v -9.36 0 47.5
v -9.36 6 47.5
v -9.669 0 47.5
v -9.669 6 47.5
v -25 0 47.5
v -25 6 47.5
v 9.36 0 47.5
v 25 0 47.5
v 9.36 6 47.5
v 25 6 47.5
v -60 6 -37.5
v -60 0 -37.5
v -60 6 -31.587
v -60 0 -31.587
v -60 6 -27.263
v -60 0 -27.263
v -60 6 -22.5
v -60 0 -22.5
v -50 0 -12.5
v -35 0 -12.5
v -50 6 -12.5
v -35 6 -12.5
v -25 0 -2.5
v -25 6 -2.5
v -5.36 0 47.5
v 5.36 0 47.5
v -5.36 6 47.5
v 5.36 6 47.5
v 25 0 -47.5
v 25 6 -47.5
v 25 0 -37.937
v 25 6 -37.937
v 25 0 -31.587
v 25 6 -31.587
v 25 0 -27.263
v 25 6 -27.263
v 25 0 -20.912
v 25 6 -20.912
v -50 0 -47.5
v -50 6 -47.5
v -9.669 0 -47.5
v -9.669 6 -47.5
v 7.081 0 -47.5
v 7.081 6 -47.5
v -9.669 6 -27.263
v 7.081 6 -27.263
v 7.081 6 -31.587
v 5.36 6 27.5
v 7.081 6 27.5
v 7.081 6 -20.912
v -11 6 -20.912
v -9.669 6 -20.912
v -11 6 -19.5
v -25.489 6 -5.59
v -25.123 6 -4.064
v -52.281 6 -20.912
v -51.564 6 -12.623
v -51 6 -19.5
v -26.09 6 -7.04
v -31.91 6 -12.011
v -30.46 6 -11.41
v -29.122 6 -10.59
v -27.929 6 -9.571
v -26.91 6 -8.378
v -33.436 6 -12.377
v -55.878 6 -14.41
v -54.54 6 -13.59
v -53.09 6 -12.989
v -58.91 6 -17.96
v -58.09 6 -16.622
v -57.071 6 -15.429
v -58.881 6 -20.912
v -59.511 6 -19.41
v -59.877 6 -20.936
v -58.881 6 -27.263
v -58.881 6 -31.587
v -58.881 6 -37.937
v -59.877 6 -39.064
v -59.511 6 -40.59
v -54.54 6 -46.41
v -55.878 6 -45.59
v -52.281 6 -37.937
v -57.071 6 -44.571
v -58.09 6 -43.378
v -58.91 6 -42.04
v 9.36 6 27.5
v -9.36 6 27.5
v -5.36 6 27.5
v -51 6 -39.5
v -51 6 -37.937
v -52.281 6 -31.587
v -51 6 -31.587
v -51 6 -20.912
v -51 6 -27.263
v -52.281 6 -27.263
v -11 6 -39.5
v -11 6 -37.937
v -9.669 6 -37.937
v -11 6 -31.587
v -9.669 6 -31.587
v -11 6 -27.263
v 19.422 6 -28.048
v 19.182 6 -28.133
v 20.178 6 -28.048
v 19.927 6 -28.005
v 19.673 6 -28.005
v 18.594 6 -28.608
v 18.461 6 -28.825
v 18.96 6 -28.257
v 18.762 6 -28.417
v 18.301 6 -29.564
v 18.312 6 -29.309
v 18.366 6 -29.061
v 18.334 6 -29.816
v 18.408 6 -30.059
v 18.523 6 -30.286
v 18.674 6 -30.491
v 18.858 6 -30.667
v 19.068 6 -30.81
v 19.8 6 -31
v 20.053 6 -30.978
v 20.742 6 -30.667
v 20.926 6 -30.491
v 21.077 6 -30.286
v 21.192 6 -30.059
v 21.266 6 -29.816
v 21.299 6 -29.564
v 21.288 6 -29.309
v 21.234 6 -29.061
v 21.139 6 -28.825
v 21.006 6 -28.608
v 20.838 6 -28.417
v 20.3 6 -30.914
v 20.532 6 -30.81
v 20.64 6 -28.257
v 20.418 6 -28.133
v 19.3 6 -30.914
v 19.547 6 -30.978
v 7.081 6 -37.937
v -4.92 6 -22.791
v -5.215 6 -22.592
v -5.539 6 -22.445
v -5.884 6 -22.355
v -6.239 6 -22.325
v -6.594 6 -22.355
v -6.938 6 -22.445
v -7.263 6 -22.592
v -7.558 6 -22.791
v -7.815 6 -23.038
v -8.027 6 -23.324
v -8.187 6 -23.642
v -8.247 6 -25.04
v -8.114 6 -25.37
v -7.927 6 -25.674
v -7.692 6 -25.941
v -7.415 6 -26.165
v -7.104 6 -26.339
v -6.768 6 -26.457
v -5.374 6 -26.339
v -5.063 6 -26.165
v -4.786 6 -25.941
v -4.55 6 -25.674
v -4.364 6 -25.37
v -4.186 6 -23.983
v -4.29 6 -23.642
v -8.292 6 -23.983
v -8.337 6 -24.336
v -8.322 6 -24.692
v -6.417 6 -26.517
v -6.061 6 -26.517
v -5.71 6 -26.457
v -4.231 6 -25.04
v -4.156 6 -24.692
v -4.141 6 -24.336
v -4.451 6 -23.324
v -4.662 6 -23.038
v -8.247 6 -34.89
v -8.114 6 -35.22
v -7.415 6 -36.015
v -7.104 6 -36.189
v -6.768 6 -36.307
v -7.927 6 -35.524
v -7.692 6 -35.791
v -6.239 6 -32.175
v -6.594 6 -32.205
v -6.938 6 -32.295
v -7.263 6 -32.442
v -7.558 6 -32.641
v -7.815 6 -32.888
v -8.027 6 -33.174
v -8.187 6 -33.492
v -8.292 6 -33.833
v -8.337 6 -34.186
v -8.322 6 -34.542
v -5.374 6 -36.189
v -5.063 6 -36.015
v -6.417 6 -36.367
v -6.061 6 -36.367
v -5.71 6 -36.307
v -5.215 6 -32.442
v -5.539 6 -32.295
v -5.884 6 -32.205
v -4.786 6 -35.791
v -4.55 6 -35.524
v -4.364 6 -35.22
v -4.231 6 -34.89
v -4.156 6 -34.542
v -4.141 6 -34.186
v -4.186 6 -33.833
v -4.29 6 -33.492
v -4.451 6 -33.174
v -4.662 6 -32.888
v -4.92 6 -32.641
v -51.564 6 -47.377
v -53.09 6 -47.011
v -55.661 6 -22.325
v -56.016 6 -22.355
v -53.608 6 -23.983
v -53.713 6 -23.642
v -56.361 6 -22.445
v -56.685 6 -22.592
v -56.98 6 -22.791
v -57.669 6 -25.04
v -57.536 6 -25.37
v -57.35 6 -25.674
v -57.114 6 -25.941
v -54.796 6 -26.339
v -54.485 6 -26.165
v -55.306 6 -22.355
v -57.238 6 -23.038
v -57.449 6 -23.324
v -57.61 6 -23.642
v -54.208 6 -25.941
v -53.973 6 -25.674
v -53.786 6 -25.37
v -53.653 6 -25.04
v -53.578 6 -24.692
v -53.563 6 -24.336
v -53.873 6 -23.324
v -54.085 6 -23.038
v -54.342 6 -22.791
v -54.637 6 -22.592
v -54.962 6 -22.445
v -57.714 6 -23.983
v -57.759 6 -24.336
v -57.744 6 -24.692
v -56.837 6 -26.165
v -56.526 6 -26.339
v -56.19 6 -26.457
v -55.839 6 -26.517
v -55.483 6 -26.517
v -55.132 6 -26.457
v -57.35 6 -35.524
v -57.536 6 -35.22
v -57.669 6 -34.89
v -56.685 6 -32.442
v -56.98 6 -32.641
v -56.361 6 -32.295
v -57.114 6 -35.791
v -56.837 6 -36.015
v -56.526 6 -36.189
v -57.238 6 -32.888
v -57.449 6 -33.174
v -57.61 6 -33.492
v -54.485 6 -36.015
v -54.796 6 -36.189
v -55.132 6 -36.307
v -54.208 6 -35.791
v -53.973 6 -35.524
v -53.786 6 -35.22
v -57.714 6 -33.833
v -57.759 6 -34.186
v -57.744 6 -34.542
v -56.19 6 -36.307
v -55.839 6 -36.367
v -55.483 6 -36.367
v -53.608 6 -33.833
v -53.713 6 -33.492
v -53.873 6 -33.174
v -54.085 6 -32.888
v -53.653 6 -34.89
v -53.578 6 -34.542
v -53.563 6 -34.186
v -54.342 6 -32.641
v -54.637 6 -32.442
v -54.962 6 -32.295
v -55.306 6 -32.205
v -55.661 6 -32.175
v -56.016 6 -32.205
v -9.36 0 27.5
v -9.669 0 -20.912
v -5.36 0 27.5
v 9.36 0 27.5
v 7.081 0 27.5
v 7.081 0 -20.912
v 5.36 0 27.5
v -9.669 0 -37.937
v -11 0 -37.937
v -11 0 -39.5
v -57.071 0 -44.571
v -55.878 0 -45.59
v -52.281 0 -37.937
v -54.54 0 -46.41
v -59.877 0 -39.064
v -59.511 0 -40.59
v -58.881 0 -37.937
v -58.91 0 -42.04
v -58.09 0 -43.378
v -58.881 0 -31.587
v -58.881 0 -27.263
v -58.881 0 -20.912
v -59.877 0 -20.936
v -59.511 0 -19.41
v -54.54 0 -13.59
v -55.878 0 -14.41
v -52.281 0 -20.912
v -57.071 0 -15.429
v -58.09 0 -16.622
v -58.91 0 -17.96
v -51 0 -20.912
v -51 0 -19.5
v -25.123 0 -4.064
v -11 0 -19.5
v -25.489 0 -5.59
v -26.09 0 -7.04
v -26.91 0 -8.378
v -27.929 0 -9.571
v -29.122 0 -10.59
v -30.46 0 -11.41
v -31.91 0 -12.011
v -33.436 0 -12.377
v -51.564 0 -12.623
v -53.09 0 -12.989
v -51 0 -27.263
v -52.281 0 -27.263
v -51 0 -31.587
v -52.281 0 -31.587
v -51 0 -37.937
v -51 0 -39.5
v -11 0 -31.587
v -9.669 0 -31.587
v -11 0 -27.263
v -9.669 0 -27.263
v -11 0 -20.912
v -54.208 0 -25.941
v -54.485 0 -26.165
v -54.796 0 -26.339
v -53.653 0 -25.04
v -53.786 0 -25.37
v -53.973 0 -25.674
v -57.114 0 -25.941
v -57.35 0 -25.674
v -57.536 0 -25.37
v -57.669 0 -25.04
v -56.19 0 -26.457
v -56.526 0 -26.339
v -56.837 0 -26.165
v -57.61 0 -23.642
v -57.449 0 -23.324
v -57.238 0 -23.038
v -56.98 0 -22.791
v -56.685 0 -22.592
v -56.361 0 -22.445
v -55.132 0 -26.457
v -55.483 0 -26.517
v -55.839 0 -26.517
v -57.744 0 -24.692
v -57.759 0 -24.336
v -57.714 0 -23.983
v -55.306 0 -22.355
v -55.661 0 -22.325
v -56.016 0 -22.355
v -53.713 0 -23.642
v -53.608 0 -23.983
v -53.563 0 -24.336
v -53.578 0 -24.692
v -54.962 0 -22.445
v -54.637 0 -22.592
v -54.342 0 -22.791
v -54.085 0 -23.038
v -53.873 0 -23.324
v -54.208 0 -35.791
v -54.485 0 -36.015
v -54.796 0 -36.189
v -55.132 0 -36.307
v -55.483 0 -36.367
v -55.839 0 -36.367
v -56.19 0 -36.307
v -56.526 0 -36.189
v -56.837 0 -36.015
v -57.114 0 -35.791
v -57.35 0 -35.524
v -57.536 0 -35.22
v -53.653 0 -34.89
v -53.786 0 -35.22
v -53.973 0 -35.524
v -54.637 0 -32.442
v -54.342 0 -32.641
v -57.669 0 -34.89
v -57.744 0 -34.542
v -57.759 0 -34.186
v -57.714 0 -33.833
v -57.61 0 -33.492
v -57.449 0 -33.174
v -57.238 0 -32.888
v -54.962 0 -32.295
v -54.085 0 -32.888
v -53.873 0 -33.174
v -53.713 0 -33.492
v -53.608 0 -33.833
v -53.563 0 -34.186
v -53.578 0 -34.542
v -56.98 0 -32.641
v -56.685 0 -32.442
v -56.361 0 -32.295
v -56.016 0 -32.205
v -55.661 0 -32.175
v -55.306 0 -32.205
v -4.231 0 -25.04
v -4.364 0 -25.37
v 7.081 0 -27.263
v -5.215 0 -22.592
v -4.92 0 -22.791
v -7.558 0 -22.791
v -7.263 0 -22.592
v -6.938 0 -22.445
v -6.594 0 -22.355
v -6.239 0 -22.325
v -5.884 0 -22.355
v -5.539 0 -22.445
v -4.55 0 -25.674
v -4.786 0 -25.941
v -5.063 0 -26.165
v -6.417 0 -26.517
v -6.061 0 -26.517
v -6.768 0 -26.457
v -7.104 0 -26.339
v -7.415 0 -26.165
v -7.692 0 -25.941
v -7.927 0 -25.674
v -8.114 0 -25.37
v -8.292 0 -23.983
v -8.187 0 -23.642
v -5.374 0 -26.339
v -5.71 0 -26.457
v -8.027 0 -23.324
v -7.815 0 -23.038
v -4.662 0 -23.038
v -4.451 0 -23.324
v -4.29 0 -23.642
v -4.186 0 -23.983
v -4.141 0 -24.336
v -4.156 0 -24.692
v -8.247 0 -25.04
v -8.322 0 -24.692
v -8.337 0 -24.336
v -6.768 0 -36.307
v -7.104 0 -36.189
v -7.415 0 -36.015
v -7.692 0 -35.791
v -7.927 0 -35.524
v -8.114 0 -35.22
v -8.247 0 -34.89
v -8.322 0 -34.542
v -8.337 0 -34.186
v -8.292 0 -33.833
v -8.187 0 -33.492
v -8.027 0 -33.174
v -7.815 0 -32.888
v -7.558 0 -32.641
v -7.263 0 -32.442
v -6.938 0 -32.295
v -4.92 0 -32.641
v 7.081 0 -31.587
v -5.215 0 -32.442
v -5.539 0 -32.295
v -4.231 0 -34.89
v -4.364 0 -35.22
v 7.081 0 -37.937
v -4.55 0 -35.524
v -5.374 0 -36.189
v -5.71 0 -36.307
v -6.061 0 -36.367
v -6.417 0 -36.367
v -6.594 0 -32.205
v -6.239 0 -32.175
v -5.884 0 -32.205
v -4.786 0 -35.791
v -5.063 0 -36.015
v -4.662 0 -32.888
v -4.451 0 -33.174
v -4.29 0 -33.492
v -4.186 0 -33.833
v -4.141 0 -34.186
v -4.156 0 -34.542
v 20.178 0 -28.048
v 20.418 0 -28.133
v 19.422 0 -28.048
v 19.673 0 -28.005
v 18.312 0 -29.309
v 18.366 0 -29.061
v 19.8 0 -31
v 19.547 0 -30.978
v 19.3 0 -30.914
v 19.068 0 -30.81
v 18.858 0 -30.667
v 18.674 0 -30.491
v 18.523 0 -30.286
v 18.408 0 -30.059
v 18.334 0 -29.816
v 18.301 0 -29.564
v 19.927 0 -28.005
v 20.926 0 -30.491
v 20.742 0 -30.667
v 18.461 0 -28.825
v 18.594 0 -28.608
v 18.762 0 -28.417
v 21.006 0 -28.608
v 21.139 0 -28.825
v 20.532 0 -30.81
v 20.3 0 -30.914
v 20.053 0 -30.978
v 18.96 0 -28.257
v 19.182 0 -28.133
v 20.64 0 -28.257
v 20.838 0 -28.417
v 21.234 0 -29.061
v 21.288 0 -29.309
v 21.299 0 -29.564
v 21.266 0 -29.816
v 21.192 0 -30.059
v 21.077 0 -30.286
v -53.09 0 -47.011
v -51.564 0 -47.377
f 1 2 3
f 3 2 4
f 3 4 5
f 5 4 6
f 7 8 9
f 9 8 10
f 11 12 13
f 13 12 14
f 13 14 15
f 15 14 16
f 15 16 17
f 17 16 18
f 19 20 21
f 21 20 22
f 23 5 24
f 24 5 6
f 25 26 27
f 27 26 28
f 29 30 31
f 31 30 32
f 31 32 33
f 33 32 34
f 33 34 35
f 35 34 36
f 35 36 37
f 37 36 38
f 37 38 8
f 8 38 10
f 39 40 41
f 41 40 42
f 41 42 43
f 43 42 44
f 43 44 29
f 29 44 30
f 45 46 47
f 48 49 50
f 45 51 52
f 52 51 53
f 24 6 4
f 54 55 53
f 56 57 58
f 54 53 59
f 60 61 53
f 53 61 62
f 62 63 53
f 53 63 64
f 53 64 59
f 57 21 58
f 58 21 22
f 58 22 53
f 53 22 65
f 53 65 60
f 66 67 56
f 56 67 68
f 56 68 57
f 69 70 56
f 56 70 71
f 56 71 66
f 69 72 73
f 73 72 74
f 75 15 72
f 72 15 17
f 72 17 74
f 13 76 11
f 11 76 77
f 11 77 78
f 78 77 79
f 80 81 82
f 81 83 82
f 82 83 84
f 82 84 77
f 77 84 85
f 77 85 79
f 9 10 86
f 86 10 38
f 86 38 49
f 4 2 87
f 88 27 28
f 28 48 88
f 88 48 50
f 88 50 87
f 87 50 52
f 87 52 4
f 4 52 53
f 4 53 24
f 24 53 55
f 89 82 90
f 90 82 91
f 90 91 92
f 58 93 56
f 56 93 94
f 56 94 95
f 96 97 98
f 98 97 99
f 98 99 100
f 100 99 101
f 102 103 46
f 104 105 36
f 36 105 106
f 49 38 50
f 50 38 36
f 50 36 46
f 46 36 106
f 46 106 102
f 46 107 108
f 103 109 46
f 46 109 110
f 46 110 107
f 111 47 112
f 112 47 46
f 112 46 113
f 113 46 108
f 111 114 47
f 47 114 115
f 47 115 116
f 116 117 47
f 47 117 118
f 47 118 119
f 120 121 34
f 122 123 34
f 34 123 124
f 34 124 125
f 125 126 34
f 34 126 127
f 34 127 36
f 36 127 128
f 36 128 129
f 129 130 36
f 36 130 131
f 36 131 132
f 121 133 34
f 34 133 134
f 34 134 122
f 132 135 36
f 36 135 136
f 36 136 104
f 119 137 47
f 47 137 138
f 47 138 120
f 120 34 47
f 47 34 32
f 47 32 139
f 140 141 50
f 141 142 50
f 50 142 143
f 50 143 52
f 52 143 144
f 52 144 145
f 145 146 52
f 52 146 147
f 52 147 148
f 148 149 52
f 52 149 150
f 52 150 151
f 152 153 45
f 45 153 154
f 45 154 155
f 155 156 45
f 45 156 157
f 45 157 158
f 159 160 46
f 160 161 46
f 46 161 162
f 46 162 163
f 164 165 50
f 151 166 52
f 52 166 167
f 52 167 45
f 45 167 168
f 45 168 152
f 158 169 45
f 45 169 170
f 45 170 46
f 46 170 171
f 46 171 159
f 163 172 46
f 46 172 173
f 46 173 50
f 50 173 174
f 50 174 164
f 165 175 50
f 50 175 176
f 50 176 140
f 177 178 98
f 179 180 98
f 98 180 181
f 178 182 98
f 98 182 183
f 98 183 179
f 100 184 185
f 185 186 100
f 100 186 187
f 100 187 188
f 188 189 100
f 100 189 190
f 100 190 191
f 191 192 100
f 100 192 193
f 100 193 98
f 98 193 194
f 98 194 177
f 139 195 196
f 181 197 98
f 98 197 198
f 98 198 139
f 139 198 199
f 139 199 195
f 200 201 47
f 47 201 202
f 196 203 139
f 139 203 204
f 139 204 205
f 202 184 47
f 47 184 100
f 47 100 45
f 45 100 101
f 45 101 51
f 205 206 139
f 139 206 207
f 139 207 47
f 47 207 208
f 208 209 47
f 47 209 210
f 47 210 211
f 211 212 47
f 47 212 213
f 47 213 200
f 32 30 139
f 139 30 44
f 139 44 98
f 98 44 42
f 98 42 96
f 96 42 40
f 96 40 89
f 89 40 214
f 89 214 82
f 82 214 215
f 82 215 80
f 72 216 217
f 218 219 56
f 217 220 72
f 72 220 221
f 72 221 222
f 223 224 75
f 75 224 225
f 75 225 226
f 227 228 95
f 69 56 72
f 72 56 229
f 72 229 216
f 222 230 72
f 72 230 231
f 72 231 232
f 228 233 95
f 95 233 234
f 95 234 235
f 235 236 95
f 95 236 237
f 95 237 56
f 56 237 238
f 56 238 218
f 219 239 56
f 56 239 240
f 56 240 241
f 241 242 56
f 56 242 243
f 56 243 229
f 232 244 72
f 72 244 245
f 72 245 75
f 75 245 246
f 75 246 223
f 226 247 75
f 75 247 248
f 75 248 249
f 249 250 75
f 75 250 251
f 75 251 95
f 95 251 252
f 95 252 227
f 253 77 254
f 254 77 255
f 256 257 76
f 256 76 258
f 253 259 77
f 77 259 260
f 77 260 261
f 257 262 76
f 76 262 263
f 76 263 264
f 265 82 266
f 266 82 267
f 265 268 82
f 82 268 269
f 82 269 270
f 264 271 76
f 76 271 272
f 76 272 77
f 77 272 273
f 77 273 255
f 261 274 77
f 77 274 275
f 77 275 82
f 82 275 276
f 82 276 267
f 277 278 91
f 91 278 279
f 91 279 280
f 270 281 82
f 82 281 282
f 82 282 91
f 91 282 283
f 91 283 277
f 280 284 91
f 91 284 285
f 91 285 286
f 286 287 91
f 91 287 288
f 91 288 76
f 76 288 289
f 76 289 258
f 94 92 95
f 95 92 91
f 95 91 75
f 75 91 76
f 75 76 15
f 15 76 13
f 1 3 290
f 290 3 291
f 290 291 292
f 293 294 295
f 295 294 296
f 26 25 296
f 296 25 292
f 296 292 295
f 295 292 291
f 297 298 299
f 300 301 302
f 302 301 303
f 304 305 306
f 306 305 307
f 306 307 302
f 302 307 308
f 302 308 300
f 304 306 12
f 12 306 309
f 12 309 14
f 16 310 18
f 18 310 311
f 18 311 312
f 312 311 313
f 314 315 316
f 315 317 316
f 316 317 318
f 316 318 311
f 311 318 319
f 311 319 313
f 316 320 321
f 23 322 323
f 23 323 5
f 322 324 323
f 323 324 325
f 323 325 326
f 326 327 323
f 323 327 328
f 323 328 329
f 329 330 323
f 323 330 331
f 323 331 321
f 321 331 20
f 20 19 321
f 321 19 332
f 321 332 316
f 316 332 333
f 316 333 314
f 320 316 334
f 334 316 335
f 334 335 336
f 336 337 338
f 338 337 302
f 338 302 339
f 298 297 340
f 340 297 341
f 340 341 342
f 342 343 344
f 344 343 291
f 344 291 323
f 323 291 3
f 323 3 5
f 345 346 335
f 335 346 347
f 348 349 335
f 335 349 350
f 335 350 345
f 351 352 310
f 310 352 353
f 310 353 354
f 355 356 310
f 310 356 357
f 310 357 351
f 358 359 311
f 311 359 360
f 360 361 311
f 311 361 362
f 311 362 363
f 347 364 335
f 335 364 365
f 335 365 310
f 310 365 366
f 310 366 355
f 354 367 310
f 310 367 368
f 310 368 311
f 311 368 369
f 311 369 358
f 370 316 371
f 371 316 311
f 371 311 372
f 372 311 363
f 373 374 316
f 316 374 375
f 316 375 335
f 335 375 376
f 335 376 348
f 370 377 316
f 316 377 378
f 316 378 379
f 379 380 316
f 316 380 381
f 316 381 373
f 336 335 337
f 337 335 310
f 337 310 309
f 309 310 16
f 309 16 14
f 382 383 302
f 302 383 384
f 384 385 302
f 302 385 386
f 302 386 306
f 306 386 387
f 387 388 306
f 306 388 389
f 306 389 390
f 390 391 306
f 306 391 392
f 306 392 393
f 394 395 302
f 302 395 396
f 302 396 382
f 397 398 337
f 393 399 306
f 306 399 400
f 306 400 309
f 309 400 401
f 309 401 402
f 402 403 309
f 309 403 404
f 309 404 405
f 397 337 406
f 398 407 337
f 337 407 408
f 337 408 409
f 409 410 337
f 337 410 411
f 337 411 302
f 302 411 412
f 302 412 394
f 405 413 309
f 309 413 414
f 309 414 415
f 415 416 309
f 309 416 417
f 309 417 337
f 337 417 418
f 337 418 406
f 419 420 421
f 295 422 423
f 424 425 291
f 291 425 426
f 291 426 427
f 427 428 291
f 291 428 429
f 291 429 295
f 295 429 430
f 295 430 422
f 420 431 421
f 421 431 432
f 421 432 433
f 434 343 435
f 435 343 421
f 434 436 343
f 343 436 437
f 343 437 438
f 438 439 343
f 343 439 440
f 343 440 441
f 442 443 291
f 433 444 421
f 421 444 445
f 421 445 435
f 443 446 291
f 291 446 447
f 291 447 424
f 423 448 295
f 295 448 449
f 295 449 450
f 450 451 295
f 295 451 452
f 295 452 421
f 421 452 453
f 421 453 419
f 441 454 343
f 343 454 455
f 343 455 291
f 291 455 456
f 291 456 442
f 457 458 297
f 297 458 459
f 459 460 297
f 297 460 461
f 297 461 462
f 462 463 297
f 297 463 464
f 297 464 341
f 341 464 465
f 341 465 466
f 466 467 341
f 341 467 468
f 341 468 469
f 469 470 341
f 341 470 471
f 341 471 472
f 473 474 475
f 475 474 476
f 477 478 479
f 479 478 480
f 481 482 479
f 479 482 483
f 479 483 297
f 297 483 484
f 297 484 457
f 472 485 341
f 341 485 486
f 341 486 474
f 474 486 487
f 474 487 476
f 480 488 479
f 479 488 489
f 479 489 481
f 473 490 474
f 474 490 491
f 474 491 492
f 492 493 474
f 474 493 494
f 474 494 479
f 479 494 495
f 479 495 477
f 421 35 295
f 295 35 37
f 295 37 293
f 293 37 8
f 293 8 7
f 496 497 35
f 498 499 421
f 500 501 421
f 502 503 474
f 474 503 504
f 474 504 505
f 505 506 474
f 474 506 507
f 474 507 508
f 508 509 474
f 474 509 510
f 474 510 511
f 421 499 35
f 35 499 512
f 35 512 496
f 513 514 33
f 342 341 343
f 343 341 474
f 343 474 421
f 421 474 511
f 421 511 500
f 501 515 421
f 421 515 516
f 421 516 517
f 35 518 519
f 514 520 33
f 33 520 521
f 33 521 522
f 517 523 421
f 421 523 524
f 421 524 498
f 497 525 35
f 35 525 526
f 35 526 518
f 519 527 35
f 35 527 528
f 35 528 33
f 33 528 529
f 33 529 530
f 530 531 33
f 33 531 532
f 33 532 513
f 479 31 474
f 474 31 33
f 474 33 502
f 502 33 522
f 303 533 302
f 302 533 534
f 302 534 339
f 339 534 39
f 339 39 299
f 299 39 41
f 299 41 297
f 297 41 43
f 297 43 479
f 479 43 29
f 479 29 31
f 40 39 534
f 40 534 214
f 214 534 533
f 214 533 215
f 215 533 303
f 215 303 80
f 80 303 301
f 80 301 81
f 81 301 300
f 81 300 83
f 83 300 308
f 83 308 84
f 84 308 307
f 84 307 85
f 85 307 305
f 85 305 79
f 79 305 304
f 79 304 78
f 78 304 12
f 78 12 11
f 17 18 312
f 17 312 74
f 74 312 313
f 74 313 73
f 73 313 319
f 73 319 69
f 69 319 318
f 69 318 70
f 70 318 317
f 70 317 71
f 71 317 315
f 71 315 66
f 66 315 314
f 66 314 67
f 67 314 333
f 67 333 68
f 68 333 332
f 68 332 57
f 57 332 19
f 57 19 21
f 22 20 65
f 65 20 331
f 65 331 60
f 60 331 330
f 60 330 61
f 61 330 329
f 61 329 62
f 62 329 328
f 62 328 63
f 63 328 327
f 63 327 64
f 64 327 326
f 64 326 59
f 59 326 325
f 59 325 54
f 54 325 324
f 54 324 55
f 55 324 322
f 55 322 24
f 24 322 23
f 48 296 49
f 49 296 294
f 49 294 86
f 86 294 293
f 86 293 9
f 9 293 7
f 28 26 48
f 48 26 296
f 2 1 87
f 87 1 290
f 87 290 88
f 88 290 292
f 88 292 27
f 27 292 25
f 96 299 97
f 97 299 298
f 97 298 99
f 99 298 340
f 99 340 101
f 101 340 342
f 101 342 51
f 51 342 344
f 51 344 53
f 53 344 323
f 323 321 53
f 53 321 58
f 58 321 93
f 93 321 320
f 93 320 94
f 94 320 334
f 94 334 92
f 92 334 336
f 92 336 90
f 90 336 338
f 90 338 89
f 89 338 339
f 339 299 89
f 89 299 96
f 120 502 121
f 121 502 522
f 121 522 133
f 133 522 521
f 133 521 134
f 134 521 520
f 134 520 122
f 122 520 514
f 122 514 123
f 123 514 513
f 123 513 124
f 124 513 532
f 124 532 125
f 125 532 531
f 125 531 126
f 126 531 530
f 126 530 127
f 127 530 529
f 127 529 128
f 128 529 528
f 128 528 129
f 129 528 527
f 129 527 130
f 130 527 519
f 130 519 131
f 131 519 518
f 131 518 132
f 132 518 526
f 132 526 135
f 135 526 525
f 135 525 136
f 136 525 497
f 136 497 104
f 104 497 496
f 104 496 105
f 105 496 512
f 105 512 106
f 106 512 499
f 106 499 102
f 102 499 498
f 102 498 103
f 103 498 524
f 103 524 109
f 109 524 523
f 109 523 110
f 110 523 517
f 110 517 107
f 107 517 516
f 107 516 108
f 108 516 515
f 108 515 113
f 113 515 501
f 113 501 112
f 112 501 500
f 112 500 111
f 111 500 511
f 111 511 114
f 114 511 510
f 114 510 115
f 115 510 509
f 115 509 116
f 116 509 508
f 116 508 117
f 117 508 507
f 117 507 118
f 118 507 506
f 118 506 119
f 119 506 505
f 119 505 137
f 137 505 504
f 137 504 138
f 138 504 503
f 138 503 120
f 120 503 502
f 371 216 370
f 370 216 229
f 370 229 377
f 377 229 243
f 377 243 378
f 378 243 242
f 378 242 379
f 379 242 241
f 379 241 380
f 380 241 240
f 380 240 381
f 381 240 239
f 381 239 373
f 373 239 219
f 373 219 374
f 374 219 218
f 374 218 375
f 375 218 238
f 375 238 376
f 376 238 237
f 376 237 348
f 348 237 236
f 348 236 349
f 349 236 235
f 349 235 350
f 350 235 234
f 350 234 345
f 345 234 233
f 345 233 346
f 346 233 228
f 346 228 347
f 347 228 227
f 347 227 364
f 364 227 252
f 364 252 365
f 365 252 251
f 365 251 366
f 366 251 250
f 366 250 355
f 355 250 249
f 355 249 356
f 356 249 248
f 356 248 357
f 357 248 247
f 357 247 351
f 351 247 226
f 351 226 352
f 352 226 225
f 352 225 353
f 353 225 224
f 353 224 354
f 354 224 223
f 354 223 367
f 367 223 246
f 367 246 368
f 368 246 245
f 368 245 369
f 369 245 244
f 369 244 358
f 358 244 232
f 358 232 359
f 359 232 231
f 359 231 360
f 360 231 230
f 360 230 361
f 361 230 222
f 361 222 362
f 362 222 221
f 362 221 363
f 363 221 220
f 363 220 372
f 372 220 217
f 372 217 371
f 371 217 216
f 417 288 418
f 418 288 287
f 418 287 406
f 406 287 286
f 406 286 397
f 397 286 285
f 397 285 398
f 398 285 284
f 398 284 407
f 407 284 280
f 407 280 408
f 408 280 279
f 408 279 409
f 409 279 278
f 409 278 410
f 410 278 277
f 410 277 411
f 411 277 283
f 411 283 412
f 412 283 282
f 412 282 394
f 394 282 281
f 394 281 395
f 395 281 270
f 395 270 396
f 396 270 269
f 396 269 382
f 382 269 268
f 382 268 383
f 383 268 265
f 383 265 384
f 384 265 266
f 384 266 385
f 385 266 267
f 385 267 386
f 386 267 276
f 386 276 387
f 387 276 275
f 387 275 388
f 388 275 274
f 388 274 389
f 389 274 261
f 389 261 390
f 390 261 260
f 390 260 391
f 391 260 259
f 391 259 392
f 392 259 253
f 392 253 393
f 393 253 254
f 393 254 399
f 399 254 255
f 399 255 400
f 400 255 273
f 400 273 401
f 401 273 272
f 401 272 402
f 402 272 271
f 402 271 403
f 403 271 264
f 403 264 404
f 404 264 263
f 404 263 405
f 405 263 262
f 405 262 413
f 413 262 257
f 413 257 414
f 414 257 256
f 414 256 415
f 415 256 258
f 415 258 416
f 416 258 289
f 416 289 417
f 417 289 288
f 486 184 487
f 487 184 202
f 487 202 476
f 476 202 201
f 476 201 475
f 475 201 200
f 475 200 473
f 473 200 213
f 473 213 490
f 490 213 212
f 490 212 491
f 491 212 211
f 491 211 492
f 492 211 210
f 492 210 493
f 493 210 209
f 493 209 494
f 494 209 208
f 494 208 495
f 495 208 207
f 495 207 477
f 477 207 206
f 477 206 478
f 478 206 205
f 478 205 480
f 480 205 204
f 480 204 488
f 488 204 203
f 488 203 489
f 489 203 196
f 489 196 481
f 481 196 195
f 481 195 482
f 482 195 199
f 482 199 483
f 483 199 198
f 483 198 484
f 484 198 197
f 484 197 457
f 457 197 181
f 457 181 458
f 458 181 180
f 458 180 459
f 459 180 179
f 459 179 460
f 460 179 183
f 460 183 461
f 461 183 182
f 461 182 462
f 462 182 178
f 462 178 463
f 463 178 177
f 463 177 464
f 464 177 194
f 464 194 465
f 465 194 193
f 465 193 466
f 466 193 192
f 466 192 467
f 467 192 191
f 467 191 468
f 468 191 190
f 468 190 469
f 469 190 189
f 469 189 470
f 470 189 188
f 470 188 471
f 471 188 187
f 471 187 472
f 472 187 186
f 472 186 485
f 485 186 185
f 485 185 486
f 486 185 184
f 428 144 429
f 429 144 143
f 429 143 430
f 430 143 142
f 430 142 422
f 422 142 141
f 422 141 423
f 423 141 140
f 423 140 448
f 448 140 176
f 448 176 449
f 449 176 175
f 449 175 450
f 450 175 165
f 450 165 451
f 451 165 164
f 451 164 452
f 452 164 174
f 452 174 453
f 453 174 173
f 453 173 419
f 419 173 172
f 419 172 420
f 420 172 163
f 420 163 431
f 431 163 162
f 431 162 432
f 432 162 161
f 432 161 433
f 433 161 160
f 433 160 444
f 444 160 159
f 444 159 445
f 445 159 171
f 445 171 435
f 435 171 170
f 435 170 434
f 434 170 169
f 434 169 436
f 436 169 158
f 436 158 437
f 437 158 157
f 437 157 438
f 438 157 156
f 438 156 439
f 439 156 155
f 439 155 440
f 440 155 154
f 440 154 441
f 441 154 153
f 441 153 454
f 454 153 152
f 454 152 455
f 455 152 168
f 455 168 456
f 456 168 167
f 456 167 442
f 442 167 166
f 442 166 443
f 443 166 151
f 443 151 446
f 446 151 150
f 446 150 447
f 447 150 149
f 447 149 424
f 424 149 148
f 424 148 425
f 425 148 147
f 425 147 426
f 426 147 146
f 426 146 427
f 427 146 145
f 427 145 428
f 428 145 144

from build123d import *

# Parameters (mm, degrees)
SKETCH1_W           = 35
SKETCH1_H           = 35
SKETCH1_W_2         = 50
SKETCH1_H_2         = 95
BOSS_EXTRUDE1_DEPTH = 6
FILLET1_R           = 10
SKETCH2_W           = 4
SKETCH2_H           = 20
CUT_EXTRUDE1_DEPTH  = 10
SKETCH3_W           = 40
SKETCH3_H           = 20
CUT_EXTRUDE2_DEPTH  = 7
SKETCH4_R           = 1.5
CUT_EXTRUDE3_DEPTH  = 7
SKETCH5_R           = 2.1
CUT_EXTRUDE4_DEPTH  = 7


with BuildPart() as part:
    # Sketch1 → Boss-Extrude1 (new body)
    with BuildSketch(Plane(origin=(0, 0, 0), x_dir=(1, 0, 0), z_dir=(0, 1, 0))):
        with Locations((-42.5, 30)):
            Rectangle(SKETCH1_W, SKETCH1_H)
        Rectangle(SKETCH1_W_2, SKETCH1_H_2)
    extrude(amount=BOSS_EXTRUDE1_DEPTH)

    # Fillet1
    fillet1_edges = [part.edges().sort_by_distance(p)[0] for p in [
        (-60, 3, -47.5),
        (-25, 3, -12.5),
        (-60, 3, -12.5),
    ]]
    fillet(fillet1_edges, radius=FILLET1_R)

    # Sketch2 → Cut-Extrude1 (cut)
    with BuildSketch(Plane(origin=(0, 6, 0), x_dir=(1, 0, 0), z_dir=(0, 1, 0))):
        with Locations((-7.36, -37.5)):
            Rectangle(SKETCH2_W, SKETCH2_H)
        with Locations((7.36, -37.5)):
            Rectangle(SKETCH2_W, SKETCH2_H)
    extrude(amount=-CUT_EXTRUDE1_DEPTH, mode=Mode.SUBTRACT)

    # Sketch3 → Cut-Extrude2 (cut, through all)
    with BuildSketch(Plane(origin=(0, 6, 0), x_dir=(1, 0, 0), z_dir=(0, 1, 0))):
        with Locations((-31, 29.5)):
            Rectangle(SKETCH3_W, SKETCH3_H)
    extrude(amount=-CUT_EXTRUDE2_DEPTH, mode=Mode.SUBTRACT)

    # Sketch4 → Cut-Extrude3 (cut, through all)
    with BuildSketch(Plane(origin=(0, 0, 0), x_dir=(-1, 0, 0), z_dir=(0, -1, 0))):
        with Locations((-19.8, 29.5)):
            Circle(SKETCH4_R)
    extrude(amount=-CUT_EXTRUDE3_DEPTH, mode=Mode.SUBTRACT)

    # Sketch5 → Cut-Extrude4 (cut, through all)
    with BuildSketch(Plane(origin=(0, 6, 0), x_dir=(1, 0, 0), z_dir=(0, 1, 0))):
        with Locations((-55.661145618, 24.425)):
            Circle(SKETCH5_R)
        with Locations((-55.661145618, 34.275)):
            Circle(SKETCH5_R)
        with Locations((-6.238854382, 34.275)):
            Circle(SKETCH5_R)
        with Locations((-6.238854382, 24.425)):
            Circle(SKETCH5_R)
    extrude(amount=-CUT_EXTRUDE4_DEPTH, mode=Mode.SUBTRACT)


solid = part.part
